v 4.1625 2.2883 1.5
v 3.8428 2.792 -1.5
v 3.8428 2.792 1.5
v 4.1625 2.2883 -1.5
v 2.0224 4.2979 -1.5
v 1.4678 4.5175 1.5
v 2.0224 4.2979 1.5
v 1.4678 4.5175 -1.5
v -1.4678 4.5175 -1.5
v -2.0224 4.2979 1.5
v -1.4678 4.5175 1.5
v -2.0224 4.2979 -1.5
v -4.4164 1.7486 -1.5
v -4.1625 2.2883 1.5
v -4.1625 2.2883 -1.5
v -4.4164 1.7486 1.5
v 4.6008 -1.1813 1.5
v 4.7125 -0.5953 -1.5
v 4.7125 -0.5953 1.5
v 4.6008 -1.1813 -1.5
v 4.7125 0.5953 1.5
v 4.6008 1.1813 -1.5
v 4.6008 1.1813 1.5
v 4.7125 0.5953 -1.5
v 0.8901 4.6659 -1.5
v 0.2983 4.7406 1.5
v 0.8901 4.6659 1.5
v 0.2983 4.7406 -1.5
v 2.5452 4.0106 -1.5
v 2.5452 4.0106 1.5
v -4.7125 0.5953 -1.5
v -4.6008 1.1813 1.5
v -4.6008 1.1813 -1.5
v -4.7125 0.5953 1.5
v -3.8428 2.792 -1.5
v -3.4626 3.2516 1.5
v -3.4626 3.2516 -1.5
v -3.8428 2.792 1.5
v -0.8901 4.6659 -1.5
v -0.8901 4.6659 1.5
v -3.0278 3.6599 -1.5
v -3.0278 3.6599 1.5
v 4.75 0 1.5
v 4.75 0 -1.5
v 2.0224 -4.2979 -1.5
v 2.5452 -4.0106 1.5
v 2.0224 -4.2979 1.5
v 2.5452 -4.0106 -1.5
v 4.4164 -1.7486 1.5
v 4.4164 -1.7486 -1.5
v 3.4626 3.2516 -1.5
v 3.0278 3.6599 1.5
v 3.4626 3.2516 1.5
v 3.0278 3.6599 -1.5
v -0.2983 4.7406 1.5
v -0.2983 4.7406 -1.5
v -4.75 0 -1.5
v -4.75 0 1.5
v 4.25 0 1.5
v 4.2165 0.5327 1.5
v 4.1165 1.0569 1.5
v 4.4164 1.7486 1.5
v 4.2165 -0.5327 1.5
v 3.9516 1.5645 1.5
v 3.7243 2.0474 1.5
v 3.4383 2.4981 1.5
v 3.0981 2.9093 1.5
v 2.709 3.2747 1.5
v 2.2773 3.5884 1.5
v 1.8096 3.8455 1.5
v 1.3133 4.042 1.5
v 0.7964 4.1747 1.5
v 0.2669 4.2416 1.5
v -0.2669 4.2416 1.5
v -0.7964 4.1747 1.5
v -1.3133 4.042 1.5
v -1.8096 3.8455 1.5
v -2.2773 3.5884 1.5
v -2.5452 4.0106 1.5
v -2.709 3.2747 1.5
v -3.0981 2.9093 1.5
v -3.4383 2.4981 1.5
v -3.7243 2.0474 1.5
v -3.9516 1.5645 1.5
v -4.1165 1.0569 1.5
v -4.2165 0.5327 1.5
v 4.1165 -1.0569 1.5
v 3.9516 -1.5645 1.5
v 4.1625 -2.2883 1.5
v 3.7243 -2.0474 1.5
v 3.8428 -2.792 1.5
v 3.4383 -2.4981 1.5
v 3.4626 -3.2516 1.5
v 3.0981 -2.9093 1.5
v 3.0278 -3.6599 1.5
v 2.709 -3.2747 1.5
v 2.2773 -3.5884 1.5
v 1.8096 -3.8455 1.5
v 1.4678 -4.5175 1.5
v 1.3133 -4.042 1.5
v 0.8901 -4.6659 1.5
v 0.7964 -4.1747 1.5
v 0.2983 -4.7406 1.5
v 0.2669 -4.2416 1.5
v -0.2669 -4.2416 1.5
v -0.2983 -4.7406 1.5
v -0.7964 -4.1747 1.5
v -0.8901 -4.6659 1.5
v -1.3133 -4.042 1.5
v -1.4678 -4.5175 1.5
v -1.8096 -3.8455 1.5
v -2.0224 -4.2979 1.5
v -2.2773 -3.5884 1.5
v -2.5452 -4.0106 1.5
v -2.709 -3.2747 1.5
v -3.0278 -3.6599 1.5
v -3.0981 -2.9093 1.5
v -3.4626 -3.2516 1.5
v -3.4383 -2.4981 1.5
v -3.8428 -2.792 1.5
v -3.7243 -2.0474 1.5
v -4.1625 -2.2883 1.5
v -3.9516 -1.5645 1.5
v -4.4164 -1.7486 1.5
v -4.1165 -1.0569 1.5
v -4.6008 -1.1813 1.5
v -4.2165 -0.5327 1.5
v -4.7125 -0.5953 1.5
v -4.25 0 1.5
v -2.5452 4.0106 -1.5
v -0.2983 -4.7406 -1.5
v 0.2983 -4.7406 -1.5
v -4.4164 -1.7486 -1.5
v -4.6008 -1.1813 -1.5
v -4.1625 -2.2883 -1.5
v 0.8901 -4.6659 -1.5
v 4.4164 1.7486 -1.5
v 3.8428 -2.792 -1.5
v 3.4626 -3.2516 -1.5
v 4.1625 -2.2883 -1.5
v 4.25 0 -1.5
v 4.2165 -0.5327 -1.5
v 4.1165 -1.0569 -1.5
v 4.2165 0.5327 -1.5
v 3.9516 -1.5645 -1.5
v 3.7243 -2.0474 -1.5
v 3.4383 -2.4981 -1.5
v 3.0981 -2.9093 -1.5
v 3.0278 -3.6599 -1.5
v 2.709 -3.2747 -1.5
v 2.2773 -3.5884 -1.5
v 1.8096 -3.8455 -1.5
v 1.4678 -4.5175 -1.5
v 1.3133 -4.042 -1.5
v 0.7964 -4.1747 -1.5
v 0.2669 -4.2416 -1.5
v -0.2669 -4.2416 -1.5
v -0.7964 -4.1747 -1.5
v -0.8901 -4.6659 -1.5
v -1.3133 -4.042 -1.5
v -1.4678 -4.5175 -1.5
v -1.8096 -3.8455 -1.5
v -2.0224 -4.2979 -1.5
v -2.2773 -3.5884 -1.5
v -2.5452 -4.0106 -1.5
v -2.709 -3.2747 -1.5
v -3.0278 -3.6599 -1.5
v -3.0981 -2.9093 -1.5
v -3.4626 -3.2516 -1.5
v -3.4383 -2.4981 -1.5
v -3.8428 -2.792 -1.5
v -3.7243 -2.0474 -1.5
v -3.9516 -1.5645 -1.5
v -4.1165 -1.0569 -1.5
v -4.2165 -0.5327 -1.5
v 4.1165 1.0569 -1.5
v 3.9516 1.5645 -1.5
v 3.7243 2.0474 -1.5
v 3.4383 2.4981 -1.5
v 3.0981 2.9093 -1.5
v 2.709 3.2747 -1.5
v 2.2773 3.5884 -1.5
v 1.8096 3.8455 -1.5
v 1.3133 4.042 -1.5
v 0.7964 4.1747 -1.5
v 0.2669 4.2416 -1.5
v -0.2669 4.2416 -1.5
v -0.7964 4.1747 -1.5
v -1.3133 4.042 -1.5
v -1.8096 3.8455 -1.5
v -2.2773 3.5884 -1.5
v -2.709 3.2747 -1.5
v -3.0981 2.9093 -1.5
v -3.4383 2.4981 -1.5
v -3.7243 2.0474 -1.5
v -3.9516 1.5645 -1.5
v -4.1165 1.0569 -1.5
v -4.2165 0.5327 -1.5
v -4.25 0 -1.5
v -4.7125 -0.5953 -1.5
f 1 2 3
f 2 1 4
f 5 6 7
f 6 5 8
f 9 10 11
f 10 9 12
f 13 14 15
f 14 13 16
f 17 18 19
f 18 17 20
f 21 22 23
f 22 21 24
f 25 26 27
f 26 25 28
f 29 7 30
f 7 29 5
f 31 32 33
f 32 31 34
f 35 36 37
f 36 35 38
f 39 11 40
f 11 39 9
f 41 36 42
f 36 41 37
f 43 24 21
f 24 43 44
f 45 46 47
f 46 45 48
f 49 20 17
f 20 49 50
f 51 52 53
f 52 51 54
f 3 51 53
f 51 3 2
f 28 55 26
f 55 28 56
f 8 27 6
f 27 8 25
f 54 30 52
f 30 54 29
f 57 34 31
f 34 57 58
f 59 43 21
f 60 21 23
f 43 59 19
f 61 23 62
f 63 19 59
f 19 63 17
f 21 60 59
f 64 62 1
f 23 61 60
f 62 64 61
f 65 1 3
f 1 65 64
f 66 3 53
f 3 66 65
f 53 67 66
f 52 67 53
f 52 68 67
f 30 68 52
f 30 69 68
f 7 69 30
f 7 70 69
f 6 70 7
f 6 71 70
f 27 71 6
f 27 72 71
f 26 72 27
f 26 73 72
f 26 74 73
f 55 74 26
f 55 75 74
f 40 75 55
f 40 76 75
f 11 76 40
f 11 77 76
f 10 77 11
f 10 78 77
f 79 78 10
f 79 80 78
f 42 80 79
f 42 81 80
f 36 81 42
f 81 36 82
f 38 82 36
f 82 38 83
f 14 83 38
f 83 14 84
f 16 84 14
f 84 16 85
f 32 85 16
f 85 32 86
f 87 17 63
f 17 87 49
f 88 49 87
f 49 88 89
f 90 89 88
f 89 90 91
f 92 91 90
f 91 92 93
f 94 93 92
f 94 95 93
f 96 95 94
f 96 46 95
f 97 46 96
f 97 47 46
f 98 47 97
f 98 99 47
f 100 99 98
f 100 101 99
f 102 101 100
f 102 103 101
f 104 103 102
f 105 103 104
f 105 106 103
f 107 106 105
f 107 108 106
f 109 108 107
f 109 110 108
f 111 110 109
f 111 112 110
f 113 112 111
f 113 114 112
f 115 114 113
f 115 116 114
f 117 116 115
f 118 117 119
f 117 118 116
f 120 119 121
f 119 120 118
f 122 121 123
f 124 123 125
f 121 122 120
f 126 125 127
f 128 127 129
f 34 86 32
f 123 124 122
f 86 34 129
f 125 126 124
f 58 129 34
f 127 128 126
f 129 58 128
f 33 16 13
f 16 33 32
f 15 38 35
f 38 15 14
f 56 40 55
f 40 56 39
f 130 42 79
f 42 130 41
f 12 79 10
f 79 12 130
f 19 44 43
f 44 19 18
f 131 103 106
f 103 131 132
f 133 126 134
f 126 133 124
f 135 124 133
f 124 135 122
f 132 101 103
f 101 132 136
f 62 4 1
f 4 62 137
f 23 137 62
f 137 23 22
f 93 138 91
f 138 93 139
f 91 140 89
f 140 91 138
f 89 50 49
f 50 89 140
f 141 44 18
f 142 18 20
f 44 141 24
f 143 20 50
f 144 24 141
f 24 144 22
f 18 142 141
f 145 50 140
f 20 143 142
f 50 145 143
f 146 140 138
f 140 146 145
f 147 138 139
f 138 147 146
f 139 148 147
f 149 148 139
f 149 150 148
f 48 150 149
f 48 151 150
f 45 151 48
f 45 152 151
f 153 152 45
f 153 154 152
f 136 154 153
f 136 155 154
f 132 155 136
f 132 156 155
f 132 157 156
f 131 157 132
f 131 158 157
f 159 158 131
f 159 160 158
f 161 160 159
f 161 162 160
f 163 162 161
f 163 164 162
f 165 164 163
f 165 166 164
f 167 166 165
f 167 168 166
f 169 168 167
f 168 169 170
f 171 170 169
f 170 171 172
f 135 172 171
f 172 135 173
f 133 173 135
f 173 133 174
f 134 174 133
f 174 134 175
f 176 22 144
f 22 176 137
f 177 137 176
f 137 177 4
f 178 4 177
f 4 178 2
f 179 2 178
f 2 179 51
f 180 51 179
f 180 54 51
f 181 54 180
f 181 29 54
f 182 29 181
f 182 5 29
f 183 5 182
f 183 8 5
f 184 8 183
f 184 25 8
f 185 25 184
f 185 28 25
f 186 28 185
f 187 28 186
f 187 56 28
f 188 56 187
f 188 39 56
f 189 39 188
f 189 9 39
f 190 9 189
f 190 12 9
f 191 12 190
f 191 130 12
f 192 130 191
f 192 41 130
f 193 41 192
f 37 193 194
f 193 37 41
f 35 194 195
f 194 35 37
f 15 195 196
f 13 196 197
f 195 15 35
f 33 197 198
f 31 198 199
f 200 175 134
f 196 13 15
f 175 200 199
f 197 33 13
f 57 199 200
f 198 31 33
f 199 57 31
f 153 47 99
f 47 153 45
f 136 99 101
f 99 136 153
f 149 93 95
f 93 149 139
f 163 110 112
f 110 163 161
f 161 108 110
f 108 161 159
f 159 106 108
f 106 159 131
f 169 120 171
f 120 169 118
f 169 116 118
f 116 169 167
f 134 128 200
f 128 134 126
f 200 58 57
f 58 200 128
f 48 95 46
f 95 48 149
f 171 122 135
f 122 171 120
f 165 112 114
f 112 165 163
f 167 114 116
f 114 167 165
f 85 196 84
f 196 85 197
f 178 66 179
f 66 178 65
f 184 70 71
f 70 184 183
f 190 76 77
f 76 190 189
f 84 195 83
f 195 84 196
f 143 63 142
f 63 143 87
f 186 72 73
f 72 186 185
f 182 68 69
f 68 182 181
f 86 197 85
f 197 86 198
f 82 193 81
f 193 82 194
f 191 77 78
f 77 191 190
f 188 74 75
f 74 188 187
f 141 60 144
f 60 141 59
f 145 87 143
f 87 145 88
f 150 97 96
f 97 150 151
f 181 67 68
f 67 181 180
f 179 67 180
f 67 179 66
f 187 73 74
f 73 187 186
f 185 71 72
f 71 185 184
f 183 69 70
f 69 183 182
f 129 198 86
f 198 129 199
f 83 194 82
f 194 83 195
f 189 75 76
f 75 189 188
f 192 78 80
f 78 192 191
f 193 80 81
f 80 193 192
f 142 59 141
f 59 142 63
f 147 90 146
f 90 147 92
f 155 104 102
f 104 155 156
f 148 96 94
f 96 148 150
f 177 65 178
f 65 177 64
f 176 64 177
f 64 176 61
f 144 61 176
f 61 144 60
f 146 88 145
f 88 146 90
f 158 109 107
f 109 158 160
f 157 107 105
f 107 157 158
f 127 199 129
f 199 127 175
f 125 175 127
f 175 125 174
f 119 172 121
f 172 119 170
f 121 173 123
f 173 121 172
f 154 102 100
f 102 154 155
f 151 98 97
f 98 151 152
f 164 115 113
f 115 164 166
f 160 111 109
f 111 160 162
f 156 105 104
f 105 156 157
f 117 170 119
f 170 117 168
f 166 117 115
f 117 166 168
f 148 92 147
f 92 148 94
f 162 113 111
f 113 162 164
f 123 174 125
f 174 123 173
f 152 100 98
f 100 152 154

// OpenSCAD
$fn = 50;


difference() {
	union() {
		translate(v = [0, 0, -1.5000000000]) {
			cylinder(h = 3, r = 4.7500000000);
		}
	}
	union() {
		translate(v = [0, 0, -100.0000000000]) {
			cylinder(h = 200, r = 4.2500000000);
		}
	}
}
